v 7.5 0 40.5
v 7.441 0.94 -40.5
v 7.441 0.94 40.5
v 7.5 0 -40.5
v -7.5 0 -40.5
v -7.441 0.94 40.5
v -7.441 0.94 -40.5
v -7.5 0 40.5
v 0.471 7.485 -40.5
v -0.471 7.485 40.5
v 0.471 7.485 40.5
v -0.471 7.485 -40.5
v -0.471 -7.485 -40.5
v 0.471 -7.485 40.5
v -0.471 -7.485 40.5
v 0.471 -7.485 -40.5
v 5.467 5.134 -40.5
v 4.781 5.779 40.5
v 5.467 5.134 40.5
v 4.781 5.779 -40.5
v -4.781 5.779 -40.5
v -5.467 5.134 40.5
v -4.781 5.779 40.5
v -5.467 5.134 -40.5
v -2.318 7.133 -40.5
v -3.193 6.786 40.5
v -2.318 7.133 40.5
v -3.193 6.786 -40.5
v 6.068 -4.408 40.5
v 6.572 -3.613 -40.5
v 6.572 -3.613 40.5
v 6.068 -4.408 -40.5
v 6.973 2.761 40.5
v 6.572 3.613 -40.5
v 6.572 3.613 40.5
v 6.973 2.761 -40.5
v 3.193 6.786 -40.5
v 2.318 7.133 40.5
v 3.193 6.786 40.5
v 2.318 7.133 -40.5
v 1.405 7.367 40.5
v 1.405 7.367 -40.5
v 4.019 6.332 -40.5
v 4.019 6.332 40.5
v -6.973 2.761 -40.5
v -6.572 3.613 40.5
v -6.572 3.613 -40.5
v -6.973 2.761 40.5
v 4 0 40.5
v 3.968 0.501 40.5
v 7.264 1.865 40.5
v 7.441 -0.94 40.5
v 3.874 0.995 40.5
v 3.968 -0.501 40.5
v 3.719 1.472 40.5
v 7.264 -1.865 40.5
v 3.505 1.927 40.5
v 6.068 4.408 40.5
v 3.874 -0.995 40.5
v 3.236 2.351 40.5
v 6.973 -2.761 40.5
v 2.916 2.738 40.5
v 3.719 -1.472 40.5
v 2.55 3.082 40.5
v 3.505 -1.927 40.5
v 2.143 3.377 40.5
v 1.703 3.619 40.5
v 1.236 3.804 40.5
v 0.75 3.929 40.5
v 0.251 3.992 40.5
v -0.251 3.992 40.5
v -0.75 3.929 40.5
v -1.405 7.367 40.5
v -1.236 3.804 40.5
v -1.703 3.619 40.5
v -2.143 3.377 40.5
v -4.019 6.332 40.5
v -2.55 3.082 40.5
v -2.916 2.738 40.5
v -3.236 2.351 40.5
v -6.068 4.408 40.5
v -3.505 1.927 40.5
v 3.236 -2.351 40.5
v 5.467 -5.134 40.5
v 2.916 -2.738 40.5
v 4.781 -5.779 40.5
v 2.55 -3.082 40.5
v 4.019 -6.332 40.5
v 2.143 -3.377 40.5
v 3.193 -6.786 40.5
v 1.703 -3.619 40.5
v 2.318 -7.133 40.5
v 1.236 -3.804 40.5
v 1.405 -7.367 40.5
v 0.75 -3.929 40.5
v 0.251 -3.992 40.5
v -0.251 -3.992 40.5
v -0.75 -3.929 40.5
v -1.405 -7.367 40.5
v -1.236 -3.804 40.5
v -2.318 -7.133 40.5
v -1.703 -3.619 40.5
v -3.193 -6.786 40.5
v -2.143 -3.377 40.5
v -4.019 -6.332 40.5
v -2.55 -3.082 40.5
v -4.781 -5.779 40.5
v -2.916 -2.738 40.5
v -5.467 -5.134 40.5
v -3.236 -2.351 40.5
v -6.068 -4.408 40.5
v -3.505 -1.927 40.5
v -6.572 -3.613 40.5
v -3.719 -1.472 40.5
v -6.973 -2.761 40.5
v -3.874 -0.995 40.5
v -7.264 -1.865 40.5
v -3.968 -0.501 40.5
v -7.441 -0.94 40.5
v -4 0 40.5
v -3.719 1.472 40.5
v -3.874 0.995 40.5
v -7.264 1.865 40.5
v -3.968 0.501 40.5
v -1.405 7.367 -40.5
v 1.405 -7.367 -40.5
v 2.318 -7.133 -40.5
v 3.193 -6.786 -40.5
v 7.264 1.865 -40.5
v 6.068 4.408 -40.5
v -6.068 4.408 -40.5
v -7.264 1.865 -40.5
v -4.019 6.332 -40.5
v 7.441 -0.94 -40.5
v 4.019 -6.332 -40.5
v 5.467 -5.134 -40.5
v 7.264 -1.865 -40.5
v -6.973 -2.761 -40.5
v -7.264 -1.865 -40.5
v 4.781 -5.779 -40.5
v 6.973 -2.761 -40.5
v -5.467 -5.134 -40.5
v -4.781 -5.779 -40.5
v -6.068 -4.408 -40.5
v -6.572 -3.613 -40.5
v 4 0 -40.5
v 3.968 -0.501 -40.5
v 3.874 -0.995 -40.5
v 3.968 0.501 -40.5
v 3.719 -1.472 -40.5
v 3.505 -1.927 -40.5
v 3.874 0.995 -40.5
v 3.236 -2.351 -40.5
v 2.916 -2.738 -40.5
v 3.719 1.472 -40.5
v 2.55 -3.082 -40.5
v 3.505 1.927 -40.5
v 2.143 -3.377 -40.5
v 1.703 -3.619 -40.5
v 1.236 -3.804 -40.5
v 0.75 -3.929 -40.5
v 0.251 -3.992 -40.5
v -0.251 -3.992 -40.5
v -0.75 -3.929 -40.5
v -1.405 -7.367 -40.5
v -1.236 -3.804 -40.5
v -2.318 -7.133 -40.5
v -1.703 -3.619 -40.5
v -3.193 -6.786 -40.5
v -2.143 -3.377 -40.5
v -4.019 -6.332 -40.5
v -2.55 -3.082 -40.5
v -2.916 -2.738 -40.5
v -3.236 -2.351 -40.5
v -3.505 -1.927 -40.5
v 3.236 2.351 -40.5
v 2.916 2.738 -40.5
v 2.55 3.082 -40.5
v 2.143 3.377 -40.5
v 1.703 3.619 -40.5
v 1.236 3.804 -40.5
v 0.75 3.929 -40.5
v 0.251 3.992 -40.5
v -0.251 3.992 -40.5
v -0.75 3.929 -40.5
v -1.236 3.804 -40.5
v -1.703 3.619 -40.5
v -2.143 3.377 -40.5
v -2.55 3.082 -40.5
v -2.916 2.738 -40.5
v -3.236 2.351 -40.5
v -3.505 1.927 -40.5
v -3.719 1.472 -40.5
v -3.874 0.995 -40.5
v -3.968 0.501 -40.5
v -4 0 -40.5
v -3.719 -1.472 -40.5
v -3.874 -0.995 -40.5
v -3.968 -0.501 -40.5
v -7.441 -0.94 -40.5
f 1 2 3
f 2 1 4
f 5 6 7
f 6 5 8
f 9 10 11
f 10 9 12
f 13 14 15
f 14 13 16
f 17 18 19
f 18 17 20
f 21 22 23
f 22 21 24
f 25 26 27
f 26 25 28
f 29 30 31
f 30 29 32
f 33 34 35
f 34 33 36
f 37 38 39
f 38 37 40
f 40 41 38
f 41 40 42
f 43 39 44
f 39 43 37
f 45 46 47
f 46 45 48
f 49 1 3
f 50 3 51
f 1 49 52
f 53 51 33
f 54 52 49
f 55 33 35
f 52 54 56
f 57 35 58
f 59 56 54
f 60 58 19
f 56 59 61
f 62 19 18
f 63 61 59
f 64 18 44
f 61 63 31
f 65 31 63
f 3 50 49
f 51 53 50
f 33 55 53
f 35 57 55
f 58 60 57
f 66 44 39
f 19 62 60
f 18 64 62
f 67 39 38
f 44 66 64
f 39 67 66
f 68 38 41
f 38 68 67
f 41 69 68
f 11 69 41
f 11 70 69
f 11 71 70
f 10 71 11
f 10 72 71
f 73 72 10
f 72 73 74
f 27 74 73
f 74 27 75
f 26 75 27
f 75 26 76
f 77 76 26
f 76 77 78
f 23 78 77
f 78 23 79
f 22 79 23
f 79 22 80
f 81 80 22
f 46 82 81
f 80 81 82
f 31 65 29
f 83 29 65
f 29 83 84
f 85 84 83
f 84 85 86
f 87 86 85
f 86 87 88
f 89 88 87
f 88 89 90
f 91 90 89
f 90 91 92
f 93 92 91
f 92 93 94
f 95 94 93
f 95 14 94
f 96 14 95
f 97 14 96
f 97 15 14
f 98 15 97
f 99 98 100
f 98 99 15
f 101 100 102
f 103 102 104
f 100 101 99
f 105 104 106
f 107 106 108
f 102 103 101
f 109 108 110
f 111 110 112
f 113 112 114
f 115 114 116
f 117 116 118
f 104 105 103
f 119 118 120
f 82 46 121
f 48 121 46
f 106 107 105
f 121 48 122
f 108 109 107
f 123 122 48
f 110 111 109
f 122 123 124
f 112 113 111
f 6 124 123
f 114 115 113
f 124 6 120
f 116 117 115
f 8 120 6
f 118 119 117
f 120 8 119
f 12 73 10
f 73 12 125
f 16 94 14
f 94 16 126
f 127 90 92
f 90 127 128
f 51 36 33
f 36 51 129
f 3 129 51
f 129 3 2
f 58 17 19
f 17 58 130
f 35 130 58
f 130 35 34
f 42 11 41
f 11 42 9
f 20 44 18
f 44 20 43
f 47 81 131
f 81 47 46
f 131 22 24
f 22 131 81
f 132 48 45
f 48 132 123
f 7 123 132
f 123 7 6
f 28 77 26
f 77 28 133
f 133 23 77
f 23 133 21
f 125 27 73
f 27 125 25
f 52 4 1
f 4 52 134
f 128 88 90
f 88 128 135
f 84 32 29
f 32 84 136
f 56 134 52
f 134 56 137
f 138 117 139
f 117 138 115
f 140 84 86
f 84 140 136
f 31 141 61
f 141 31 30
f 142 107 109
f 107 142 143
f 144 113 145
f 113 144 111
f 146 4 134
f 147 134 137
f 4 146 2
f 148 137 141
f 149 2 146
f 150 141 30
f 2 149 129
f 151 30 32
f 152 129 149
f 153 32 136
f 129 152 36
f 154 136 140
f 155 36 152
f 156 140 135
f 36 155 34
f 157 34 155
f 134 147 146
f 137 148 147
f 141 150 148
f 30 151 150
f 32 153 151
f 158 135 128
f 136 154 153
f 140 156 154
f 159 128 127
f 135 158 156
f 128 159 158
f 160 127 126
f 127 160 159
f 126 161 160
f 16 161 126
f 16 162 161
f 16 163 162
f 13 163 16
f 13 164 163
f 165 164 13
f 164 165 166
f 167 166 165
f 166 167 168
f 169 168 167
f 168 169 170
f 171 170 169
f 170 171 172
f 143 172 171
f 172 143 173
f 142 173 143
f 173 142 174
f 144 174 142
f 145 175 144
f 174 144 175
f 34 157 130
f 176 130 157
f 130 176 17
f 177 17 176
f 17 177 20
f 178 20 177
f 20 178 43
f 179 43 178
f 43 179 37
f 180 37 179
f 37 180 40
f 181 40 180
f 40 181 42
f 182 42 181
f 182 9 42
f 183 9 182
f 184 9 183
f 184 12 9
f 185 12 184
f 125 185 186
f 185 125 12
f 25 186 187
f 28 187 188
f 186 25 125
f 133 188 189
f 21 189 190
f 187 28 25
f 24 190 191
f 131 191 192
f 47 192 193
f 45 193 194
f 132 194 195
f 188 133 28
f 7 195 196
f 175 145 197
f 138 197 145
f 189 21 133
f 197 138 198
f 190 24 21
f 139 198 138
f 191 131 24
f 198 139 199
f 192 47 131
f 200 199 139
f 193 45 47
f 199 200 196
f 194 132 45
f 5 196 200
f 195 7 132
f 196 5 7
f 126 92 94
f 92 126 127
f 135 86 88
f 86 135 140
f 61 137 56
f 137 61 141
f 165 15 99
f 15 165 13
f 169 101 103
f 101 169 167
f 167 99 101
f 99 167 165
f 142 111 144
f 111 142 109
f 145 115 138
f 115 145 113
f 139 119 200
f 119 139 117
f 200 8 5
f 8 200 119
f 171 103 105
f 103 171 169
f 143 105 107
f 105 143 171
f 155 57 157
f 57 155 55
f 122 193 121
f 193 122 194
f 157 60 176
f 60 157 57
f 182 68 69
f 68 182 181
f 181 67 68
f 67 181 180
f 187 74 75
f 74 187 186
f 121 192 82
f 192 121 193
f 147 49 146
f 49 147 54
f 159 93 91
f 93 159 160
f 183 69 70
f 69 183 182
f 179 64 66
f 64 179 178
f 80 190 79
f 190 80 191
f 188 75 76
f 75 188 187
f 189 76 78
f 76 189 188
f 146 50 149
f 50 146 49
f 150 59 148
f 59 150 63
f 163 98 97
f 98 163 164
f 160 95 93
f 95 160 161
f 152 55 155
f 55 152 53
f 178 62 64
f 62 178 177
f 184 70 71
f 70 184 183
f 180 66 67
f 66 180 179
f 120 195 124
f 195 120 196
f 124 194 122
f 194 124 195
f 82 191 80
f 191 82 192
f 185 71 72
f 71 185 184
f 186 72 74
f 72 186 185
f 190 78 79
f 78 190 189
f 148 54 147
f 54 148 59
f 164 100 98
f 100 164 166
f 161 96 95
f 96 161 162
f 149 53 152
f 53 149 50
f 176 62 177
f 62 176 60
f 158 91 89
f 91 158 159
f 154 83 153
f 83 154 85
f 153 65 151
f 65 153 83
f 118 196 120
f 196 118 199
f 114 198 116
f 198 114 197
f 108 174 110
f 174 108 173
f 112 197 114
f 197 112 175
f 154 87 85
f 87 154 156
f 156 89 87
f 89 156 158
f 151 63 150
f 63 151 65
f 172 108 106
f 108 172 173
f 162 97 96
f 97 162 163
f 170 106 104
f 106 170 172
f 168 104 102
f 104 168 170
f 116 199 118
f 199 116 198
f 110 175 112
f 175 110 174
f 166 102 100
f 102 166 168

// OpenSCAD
$fn = 50;


difference() {
	union() {
		translate(v = [0, 0, -40.5000000000]) {
			cylinder(h = 81, r = 7.5000000000);
		}
	}
	union() {
		translate(v = [0, 0, -100.0000000000]) {
			cylinder(h = 200, r = 4.0000000000);
		}
	}
}
